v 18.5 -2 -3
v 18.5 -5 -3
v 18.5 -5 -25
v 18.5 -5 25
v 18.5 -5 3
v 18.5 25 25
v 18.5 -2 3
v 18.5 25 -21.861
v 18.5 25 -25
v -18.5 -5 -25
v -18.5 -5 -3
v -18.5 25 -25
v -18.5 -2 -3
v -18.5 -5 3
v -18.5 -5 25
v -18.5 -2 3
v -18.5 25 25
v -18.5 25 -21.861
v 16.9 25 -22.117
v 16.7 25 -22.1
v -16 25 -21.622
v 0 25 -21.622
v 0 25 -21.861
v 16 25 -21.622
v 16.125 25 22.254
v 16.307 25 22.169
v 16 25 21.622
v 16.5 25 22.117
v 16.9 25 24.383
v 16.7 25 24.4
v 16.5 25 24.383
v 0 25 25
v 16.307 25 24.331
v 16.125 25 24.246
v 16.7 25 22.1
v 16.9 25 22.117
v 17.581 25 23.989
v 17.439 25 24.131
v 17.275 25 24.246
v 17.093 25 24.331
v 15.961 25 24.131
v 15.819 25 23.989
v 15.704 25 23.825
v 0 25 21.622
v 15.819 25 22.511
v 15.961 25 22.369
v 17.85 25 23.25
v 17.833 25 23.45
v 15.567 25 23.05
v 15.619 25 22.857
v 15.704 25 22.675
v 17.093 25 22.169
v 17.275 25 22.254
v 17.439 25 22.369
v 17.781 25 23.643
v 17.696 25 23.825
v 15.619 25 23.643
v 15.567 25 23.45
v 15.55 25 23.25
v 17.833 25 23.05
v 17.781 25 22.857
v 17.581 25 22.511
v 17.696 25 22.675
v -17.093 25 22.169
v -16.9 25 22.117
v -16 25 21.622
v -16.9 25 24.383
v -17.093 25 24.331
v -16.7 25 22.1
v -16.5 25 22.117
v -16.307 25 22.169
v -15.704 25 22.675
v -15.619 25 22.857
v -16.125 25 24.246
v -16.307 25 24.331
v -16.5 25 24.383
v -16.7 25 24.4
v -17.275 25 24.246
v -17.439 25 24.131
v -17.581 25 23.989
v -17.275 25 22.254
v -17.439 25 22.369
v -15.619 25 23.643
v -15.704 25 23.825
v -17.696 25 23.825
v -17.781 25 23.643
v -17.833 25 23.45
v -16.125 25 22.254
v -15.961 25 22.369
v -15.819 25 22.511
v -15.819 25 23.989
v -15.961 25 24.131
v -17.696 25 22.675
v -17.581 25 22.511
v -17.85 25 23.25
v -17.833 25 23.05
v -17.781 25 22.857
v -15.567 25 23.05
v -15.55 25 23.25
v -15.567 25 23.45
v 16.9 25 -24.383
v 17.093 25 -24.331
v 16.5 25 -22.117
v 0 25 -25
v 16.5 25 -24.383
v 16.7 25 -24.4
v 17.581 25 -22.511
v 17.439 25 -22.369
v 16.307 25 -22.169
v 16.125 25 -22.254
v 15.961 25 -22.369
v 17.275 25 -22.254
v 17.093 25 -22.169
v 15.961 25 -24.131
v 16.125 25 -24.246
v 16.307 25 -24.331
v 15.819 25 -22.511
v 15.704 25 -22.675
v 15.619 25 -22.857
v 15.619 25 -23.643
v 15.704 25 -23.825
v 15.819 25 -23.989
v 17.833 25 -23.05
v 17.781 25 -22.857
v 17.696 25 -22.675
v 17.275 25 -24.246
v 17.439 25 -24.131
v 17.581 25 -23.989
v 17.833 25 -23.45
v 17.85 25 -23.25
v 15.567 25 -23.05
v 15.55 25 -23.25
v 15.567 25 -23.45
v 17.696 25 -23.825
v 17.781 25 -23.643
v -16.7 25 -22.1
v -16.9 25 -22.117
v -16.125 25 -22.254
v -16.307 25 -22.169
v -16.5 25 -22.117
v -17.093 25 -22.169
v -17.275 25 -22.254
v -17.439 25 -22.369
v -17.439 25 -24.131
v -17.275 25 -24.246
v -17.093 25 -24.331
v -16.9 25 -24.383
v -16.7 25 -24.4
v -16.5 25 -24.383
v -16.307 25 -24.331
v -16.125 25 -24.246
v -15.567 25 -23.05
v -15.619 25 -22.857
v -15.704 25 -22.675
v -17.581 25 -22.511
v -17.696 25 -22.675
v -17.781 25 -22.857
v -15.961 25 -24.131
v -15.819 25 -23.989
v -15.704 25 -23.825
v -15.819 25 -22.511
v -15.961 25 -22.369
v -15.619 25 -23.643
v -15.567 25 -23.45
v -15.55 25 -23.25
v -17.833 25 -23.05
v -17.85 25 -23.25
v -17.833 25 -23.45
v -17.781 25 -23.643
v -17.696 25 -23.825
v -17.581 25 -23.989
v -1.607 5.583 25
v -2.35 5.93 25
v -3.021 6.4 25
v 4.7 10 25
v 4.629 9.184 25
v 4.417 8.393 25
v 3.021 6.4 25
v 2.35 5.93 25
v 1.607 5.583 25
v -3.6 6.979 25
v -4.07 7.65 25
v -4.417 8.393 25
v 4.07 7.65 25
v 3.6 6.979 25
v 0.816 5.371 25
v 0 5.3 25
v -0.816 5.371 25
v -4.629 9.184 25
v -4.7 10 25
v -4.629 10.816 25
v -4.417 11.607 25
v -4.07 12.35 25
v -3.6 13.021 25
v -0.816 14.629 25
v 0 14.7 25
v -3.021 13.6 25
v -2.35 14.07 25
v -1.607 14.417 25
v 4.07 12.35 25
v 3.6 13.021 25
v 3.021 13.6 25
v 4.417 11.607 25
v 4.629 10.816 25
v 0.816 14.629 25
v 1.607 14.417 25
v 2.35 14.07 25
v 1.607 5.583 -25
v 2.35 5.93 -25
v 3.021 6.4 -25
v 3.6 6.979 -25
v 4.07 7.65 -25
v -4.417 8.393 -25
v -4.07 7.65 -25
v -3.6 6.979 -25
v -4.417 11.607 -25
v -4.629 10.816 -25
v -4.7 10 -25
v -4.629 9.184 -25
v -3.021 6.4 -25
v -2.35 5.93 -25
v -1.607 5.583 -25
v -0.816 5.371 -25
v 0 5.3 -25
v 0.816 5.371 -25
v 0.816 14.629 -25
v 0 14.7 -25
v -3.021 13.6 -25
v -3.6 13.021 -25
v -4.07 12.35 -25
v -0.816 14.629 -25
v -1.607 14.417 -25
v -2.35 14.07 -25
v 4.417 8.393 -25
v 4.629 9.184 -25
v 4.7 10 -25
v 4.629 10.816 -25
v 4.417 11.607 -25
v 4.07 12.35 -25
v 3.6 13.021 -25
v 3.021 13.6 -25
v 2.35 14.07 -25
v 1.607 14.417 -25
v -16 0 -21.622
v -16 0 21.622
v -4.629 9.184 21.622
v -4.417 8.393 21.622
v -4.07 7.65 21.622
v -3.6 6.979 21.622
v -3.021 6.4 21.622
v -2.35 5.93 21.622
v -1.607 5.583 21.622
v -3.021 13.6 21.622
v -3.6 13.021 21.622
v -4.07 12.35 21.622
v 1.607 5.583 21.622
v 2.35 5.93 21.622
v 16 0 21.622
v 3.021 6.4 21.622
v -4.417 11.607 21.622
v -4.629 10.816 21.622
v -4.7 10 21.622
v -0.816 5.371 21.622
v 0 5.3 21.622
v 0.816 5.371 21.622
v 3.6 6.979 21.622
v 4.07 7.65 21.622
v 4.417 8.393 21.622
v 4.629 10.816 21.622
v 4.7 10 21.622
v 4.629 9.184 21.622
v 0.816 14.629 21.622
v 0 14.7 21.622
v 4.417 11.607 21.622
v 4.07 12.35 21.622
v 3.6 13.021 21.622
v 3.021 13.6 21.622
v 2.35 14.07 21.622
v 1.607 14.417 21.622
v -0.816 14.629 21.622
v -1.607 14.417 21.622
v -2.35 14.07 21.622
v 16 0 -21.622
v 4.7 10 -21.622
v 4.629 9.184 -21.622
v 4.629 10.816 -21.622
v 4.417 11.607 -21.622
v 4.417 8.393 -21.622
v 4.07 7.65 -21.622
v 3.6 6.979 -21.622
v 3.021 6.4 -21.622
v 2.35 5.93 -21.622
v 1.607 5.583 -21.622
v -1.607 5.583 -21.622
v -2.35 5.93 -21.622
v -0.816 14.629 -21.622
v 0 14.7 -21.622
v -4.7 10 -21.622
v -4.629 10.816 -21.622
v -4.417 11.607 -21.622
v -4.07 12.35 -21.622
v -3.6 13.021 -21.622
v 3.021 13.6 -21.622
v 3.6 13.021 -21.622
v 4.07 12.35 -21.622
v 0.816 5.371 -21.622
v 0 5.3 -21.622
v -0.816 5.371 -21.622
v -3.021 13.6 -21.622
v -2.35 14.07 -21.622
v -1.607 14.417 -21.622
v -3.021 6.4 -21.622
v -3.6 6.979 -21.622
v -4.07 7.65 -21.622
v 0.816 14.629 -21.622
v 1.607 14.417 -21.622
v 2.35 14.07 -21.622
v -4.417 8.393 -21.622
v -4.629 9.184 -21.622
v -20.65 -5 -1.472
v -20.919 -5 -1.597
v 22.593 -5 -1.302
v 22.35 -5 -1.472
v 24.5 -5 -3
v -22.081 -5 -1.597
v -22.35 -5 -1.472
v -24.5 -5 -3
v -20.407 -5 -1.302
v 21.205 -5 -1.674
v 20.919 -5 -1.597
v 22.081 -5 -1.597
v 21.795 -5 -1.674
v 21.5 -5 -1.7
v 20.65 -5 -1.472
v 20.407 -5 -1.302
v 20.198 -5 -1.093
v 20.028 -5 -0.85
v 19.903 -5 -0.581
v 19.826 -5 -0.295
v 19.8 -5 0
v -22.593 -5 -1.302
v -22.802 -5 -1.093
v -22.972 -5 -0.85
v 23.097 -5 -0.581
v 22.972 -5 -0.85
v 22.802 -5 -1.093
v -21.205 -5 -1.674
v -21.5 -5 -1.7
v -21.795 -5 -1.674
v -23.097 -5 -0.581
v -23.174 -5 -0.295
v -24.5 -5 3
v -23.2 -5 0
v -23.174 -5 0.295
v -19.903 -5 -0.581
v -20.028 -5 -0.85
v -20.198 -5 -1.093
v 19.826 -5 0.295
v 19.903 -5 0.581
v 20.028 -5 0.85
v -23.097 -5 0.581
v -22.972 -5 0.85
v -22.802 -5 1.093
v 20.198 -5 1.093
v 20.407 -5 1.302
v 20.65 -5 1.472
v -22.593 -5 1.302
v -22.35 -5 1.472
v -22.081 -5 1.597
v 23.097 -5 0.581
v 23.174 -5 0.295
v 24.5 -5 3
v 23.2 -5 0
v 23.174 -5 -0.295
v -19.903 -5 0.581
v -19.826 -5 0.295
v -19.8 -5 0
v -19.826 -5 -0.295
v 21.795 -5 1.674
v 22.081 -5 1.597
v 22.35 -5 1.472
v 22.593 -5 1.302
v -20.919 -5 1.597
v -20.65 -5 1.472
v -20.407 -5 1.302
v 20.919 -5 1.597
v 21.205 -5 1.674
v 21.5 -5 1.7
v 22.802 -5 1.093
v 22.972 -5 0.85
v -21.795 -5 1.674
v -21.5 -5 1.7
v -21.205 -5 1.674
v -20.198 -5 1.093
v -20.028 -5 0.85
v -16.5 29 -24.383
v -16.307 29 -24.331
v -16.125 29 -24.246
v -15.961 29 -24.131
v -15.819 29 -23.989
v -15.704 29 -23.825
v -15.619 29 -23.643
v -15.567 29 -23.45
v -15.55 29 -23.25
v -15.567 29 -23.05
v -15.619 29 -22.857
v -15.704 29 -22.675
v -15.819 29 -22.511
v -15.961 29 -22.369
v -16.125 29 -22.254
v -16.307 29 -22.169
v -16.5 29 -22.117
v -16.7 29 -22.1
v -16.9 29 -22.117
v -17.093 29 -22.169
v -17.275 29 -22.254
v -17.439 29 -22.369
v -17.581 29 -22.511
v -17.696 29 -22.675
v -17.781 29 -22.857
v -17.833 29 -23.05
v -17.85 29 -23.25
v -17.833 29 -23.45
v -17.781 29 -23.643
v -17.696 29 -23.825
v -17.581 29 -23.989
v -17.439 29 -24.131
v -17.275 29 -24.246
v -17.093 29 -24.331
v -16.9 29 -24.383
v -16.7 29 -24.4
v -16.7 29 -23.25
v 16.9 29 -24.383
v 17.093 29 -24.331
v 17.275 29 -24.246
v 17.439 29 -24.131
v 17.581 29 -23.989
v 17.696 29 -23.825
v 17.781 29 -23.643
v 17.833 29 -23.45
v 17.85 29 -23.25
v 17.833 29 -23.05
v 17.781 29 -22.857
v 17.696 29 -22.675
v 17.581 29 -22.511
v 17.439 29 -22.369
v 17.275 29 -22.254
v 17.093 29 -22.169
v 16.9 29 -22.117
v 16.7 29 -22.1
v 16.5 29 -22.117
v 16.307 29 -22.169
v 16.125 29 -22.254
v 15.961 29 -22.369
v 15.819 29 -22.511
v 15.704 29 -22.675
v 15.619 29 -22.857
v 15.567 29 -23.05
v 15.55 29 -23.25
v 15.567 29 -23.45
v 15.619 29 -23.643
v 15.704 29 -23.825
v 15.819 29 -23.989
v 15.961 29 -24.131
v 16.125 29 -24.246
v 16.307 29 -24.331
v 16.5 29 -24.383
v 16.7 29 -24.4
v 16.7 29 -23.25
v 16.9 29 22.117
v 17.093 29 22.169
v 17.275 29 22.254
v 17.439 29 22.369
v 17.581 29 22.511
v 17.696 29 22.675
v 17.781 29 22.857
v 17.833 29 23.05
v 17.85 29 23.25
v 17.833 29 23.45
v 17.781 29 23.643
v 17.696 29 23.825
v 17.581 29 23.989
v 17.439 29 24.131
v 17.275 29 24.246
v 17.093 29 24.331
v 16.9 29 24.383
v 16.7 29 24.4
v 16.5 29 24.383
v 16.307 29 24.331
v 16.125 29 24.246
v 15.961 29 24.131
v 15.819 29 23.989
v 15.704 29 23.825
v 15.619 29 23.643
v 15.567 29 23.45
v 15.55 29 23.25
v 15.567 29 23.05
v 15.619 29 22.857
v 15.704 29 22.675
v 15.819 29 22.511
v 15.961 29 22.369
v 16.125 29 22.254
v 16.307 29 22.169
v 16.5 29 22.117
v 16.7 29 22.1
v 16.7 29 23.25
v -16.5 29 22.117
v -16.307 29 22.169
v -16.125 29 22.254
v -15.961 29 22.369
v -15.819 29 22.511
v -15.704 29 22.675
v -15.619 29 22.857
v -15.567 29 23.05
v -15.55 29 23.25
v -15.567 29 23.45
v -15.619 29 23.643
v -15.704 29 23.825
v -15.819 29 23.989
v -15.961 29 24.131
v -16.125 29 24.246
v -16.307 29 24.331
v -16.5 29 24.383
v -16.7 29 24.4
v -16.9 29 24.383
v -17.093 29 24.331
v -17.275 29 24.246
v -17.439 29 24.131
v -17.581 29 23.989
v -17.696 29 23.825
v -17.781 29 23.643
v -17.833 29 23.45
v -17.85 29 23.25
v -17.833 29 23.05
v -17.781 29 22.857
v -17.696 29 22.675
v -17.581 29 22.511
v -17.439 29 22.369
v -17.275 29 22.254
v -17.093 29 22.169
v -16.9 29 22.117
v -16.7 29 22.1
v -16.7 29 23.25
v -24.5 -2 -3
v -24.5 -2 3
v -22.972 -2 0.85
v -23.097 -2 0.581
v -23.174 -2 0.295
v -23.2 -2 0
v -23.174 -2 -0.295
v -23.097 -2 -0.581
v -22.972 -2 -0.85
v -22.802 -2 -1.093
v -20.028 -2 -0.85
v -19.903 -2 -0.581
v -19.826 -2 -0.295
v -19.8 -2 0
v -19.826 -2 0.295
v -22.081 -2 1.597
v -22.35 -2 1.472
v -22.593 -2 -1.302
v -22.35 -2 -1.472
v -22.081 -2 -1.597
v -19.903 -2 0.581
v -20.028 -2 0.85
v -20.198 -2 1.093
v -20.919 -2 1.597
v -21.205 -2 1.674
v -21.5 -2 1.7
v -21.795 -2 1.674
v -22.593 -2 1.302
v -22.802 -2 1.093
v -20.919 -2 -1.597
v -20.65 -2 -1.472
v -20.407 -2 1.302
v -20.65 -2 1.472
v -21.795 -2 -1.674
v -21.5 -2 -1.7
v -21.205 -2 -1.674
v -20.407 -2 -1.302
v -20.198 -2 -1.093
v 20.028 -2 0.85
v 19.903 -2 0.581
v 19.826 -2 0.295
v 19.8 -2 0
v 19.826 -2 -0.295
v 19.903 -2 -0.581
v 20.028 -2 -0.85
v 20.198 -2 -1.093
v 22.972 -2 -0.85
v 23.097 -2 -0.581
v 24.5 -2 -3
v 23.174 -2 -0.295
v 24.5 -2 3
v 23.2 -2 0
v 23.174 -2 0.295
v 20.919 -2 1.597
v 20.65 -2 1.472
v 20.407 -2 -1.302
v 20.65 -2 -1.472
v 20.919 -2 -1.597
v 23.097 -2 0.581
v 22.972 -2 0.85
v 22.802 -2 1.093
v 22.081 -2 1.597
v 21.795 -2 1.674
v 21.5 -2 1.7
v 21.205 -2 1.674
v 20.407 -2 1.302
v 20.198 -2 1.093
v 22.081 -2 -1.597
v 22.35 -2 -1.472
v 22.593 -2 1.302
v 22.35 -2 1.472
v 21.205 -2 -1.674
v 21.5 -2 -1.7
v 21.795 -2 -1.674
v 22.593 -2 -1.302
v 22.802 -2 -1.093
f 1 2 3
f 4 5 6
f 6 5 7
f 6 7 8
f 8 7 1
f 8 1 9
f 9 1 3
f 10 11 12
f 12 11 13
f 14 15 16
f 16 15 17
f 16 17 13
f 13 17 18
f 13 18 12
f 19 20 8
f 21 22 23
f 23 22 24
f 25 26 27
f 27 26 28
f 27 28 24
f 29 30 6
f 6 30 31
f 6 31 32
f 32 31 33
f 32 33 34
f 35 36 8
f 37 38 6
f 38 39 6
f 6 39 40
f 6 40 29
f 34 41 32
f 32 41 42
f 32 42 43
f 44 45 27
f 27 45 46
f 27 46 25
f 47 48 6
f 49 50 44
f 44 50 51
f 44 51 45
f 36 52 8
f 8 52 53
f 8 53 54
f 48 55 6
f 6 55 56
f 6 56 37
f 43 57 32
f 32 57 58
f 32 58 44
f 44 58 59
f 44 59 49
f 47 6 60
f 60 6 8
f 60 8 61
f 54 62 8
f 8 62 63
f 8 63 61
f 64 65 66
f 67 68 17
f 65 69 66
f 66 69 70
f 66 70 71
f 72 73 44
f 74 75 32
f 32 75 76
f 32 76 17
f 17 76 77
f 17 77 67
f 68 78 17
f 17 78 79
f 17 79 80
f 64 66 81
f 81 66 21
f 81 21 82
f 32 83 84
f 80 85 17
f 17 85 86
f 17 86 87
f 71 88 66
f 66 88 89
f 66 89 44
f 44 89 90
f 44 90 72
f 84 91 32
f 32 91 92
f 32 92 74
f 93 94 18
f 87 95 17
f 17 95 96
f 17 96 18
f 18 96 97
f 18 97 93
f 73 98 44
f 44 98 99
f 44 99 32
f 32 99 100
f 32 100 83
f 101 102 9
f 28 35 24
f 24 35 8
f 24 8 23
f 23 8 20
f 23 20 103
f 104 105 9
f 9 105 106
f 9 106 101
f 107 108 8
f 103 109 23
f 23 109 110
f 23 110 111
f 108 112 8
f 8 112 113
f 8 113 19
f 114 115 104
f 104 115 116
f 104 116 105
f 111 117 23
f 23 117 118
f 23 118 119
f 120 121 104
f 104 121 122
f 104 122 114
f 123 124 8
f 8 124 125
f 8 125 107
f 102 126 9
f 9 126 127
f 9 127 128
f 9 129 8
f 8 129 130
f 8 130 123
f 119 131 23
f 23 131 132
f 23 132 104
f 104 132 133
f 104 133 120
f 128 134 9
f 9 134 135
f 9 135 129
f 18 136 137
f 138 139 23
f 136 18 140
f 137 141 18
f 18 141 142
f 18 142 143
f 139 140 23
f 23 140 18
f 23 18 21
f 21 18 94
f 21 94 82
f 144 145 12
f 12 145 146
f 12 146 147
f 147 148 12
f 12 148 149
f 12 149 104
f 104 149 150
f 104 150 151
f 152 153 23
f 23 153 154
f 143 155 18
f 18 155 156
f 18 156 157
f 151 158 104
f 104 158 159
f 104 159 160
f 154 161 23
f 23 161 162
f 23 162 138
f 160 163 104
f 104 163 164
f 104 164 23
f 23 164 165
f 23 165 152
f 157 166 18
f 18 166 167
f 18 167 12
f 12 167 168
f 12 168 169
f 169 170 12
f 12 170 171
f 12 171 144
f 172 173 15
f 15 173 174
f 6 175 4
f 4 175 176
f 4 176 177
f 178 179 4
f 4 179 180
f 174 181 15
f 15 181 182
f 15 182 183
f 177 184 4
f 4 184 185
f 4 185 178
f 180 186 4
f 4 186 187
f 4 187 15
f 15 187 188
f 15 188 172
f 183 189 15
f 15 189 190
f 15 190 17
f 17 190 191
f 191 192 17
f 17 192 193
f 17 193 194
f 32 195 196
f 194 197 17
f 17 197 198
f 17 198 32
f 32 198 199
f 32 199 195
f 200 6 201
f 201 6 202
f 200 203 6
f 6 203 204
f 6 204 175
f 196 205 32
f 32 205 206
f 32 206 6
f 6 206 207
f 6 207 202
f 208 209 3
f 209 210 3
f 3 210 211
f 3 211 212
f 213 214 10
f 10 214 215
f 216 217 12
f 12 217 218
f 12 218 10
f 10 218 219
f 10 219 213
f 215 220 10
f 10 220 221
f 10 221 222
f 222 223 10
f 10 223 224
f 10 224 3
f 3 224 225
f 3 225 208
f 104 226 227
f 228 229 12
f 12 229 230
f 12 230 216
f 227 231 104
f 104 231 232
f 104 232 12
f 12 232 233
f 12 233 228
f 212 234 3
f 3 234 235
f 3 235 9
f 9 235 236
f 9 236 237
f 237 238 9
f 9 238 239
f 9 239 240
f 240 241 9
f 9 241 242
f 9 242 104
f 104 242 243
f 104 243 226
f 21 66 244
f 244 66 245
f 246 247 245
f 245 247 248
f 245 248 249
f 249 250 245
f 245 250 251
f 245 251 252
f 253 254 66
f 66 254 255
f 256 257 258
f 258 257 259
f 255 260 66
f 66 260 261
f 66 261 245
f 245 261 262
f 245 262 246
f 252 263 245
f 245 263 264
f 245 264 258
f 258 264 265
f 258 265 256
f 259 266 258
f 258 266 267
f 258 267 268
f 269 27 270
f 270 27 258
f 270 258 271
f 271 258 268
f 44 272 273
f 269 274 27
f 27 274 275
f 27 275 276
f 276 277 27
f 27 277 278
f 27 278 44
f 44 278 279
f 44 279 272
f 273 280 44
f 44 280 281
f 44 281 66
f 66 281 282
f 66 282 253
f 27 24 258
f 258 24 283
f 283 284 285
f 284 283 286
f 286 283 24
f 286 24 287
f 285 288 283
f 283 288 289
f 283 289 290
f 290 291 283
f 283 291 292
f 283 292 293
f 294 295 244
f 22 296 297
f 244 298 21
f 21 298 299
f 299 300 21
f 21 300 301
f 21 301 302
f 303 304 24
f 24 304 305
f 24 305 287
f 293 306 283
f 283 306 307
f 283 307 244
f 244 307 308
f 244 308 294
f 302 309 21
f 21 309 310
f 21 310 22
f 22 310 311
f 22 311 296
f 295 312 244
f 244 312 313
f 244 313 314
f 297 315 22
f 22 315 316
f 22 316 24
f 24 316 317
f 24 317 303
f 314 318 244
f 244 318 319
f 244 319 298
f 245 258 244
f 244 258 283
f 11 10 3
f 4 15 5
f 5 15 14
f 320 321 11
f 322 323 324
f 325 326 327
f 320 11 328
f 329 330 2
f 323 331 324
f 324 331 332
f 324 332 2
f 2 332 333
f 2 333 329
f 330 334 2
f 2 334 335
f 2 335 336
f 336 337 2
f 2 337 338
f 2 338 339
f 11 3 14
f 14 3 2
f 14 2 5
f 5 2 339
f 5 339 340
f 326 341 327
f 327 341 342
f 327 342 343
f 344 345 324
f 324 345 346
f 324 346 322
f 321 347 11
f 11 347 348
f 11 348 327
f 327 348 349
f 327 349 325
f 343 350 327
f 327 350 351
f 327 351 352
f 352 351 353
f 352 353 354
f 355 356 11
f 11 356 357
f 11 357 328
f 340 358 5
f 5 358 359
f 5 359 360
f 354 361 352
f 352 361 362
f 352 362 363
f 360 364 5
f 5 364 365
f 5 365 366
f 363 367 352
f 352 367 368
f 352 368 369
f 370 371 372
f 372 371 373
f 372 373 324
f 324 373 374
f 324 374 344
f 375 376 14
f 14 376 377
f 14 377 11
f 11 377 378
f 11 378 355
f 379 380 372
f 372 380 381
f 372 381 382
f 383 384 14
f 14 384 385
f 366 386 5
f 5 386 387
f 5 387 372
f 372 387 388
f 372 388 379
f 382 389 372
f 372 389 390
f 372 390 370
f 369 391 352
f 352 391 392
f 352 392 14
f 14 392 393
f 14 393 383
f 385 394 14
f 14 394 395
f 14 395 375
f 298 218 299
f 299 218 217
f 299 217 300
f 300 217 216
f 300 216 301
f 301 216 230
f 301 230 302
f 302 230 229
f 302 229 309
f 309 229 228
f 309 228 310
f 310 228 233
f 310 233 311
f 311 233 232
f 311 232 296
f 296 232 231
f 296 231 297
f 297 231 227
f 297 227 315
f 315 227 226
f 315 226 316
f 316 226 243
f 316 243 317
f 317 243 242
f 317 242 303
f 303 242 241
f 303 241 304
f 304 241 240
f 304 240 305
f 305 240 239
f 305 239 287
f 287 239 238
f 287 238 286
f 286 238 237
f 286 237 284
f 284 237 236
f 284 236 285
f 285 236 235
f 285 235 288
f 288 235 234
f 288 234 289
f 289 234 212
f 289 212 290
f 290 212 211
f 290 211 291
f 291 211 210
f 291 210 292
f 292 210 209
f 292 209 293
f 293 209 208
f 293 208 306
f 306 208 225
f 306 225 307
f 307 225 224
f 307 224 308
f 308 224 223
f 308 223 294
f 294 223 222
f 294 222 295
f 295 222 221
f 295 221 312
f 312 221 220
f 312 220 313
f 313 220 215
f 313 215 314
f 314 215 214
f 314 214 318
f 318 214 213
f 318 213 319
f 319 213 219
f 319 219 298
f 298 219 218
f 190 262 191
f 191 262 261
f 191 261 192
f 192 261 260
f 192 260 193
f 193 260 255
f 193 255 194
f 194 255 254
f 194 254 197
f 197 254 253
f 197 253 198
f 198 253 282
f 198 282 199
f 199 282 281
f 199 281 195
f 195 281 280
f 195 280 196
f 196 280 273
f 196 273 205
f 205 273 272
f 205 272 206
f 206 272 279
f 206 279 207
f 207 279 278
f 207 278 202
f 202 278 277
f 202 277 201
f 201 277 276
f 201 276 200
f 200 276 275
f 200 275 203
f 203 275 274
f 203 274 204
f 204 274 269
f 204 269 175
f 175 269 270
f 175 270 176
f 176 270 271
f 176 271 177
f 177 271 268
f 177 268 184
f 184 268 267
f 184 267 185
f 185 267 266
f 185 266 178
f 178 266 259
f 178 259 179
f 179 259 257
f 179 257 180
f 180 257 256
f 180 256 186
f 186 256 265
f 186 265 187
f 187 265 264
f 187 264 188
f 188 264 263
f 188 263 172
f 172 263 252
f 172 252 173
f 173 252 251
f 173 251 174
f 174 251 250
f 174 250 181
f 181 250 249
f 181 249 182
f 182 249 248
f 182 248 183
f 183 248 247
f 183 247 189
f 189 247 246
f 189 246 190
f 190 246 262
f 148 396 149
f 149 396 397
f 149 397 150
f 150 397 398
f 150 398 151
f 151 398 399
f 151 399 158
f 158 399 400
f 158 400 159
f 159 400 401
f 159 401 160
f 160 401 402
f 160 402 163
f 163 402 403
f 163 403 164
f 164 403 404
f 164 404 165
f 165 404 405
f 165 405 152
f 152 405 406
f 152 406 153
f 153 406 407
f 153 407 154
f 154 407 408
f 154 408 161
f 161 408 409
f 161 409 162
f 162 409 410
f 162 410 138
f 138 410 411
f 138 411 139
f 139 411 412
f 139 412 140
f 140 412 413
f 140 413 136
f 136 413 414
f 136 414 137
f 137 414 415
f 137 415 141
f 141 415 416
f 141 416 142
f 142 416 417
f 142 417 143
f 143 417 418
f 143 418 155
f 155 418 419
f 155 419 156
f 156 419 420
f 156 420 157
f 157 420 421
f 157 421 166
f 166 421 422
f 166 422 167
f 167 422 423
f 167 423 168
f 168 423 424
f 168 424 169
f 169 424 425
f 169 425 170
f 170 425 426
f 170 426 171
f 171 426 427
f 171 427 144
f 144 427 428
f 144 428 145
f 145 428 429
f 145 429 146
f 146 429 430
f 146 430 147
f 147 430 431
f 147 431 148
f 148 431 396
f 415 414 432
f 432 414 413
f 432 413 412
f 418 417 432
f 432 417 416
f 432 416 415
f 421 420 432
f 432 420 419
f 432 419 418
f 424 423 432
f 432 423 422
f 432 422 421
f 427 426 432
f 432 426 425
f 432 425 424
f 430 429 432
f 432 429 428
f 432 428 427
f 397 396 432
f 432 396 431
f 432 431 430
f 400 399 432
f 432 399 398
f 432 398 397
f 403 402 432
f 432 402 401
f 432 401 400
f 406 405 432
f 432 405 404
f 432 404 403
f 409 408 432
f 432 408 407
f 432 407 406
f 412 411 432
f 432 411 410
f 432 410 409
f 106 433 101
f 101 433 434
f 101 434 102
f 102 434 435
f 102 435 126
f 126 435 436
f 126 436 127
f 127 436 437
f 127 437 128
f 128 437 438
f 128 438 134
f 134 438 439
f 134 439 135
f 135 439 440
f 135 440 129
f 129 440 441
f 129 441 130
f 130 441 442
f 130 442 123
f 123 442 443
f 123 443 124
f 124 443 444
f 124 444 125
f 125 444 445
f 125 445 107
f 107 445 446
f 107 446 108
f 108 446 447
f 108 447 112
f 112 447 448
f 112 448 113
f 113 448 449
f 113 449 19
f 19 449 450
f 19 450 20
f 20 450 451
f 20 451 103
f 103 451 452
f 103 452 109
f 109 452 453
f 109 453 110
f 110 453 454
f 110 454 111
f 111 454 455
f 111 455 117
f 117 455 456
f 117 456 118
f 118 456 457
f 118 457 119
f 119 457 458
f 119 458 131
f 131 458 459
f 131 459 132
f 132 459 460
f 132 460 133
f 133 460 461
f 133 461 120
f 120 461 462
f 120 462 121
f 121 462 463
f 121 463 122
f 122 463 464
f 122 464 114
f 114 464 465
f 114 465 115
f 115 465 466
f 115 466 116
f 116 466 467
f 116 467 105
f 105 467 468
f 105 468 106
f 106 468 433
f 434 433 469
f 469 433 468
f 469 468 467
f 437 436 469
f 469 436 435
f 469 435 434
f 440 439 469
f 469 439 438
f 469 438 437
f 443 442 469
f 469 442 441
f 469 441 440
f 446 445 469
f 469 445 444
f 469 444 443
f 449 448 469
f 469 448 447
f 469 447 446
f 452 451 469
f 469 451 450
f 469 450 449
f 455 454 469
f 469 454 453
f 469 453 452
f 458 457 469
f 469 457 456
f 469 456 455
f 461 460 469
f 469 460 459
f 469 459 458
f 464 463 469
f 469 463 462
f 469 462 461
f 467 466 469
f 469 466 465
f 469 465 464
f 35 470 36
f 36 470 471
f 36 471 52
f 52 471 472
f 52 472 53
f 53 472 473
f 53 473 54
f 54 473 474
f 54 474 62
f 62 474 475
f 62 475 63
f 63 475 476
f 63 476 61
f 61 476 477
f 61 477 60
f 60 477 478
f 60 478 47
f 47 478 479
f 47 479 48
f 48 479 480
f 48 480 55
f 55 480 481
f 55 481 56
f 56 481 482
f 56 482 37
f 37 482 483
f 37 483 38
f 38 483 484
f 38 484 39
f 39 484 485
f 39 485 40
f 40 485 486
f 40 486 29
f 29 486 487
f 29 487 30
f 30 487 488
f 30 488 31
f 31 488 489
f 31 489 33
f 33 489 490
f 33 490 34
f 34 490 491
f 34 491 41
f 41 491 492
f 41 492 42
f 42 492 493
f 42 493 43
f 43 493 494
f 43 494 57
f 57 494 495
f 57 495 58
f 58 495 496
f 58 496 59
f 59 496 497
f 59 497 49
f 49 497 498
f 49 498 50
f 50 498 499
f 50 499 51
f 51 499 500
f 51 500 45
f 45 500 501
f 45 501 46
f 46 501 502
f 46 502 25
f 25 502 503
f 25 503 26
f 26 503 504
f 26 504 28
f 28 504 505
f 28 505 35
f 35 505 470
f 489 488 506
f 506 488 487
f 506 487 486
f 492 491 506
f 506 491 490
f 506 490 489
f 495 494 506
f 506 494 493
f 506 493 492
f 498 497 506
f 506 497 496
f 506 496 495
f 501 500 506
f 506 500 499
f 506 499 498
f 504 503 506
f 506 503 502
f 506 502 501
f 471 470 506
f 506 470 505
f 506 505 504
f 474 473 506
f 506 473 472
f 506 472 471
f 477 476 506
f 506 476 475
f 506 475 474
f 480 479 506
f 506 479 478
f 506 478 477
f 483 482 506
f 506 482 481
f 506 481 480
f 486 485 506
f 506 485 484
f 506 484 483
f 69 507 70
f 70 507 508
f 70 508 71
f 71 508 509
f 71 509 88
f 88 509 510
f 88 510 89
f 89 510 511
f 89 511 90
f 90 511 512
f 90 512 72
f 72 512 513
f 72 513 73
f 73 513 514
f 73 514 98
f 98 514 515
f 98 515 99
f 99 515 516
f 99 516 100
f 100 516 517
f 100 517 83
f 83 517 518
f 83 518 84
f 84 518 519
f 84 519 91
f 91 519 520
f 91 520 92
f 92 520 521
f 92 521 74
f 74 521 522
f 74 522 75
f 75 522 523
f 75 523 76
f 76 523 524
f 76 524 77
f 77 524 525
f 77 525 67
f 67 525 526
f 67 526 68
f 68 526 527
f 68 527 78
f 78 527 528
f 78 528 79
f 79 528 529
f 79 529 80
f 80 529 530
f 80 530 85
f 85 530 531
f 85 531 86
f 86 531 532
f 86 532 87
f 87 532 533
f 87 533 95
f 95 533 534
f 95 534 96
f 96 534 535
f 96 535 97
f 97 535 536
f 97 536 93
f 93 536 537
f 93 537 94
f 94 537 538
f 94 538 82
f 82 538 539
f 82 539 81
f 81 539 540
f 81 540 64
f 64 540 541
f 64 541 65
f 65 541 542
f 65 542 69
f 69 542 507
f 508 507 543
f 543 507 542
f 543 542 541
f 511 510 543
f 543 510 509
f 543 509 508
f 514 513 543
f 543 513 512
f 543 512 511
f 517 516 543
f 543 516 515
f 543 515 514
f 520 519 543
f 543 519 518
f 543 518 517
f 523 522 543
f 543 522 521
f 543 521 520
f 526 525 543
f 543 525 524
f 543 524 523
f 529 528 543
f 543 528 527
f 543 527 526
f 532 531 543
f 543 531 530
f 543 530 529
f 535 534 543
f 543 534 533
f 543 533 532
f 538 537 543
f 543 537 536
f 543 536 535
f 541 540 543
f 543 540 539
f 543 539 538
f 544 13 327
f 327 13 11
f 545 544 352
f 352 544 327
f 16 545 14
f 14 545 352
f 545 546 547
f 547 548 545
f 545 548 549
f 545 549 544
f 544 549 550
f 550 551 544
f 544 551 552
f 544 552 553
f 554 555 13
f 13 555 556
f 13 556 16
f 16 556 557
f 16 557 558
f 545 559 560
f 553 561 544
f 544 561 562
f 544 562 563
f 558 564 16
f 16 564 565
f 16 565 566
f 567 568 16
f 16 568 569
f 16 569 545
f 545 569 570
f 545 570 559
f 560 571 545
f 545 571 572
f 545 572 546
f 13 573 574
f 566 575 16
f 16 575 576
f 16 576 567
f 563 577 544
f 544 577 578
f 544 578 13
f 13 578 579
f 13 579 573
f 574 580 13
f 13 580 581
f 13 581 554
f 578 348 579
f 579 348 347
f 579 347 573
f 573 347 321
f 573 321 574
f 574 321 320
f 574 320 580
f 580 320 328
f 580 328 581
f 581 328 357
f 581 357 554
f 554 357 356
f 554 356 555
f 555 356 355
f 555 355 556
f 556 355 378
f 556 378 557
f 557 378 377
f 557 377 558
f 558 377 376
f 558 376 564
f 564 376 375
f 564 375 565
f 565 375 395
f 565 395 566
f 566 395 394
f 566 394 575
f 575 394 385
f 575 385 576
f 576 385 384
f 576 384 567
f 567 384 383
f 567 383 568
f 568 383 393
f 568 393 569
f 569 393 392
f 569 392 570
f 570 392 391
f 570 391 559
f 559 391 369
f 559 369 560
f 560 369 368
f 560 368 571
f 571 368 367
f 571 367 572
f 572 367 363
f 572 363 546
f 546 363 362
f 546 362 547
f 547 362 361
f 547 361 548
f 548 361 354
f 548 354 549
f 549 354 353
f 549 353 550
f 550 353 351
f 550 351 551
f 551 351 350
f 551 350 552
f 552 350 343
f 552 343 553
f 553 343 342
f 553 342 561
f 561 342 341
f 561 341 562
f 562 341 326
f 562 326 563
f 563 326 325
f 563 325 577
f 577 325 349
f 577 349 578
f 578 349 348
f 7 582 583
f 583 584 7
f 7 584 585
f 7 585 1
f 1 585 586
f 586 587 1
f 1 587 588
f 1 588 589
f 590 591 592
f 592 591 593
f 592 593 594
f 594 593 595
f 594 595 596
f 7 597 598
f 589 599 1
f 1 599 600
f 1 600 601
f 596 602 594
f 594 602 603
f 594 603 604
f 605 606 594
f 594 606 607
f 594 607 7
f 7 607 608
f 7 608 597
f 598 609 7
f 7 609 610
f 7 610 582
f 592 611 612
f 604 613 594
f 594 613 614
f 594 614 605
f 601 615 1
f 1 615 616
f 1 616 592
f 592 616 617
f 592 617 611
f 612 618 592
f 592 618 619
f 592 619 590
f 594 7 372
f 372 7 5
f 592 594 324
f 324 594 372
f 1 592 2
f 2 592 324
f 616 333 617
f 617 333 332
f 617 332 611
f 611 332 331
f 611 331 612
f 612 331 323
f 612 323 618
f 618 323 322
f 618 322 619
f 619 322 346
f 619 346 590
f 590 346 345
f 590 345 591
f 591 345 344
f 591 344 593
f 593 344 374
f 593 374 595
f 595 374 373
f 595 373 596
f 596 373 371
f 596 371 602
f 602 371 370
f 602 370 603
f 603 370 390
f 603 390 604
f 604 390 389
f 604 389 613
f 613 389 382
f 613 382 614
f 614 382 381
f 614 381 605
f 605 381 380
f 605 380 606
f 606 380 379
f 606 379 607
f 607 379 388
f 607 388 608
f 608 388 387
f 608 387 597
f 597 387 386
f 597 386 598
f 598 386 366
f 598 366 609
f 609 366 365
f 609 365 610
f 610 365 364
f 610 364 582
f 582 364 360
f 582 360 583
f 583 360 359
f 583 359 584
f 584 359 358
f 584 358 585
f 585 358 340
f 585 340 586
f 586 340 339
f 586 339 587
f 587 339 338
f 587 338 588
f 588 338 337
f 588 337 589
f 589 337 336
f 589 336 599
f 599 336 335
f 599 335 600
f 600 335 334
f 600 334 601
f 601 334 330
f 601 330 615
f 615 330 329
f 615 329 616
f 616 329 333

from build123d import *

# Parameters (mm, degrees)
SKETCH2_W           = 37
SKETCH2_H           = 50
SKETCH2_W_2         = 32
SKETCH2_H_2         = 43.243243244
BOSS_EXTRUDE1_DEPTH = 25
SKETCH4_W           = 37
SKETCH4_H           = 50
BOSS_EXTRUDE2_DEPTH = 5
SKETCH5_R           = 4.7
CUT_EXTRUDE1_DEPTH  = 65
SKETCH6_R           = 1.15
BOSS_EXTRUDE3_DEPTH = 4
SKETCH7_R           = 1.7
BOSS_EXTRUDE4_DEPTH = 3


with BuildPart() as part:
    # Sketch2 → Boss-Extrude1 (new body)
    with BuildSketch(Plane(origin=(0, 0, 0), x_dir=(1, 0, 0), z_dir=(0, 1, 0))):
        Rectangle(SKETCH2_W, SKETCH2_H)
        Rectangle(SKETCH2_W_2, SKETCH2_H_2, mode=Mode.SUBTRACT)
    extrude(amount=BOSS_EXTRUDE1_DEPTH)

    # Sketch4 → Boss-Extrude2 (add)
    with BuildSketch(Plane.XZ):
        Rectangle(SKETCH4_W, SKETCH4_H)
    extrude(amount=BOSS_EXTRUDE2_DEPTH)

    # Sketch5 → Cut-Extrude1 (cut)
    with BuildSketch(Plane(origin=(0, 0, -25), x_dir=(-1, 0, 0), z_dir=(0, 0, -1))):
        with Locations((0, 10)):
            Circle(SKETCH5_R)
    extrude(amount=-CUT_EXTRUDE1_DEPTH, mode=Mode.SUBTRACT)

    # Sketch6 → Boss-Extrude3 (add)
    with BuildSketch(Plane(origin=(0, 25, 0), x_dir=(1, 0, 0), z_dir=(0, 1, 0))):
        with Locations(Location((-16.7, 23.25, 0), (0, 0, 270))):
            Circle(SKETCH6_R)
        with Locations(Location((16.7, 23.25, 0), (0, 0, 90))):
            Circle(SKETCH6_R)
        with Locations(Location((16.7, -23.25, 0), (0, 0, 270))):
            Circle(SKETCH6_R)
        with Locations(Location((-16.7, -23.25, 0), (0, 0, 90))):
            Circle(SKETCH6_R)
    extrude(amount=BOSS_EXTRUDE3_DEPTH)

    # Sketch7 → Boss-Extrude4 (add)
    with BuildSketch(Plane.XZ.offset(5)):
        Polygon((-18.5, 0), (-18.5, 3), (-24.5, 3), (-24.5, -3), (-18.5, -3), align=None)
        with Locations(Location((-21.5, 0, 0), (0, 0, 270))):
            Circle(SKETCH7_R, mode=Mode.SUBTRACT)
    boss_extrude4 = extrude(amount=-BOSS_EXTRUDE4_DEPTH)

    # Mirror1: Boss-Extrude4 across plane
    add(boss_extrude4.mirror(Plane(origin=(0, 0, 0), x_dir=(0, 0, 1), z_dir=(1, 0, 0))))


solid = part.part
